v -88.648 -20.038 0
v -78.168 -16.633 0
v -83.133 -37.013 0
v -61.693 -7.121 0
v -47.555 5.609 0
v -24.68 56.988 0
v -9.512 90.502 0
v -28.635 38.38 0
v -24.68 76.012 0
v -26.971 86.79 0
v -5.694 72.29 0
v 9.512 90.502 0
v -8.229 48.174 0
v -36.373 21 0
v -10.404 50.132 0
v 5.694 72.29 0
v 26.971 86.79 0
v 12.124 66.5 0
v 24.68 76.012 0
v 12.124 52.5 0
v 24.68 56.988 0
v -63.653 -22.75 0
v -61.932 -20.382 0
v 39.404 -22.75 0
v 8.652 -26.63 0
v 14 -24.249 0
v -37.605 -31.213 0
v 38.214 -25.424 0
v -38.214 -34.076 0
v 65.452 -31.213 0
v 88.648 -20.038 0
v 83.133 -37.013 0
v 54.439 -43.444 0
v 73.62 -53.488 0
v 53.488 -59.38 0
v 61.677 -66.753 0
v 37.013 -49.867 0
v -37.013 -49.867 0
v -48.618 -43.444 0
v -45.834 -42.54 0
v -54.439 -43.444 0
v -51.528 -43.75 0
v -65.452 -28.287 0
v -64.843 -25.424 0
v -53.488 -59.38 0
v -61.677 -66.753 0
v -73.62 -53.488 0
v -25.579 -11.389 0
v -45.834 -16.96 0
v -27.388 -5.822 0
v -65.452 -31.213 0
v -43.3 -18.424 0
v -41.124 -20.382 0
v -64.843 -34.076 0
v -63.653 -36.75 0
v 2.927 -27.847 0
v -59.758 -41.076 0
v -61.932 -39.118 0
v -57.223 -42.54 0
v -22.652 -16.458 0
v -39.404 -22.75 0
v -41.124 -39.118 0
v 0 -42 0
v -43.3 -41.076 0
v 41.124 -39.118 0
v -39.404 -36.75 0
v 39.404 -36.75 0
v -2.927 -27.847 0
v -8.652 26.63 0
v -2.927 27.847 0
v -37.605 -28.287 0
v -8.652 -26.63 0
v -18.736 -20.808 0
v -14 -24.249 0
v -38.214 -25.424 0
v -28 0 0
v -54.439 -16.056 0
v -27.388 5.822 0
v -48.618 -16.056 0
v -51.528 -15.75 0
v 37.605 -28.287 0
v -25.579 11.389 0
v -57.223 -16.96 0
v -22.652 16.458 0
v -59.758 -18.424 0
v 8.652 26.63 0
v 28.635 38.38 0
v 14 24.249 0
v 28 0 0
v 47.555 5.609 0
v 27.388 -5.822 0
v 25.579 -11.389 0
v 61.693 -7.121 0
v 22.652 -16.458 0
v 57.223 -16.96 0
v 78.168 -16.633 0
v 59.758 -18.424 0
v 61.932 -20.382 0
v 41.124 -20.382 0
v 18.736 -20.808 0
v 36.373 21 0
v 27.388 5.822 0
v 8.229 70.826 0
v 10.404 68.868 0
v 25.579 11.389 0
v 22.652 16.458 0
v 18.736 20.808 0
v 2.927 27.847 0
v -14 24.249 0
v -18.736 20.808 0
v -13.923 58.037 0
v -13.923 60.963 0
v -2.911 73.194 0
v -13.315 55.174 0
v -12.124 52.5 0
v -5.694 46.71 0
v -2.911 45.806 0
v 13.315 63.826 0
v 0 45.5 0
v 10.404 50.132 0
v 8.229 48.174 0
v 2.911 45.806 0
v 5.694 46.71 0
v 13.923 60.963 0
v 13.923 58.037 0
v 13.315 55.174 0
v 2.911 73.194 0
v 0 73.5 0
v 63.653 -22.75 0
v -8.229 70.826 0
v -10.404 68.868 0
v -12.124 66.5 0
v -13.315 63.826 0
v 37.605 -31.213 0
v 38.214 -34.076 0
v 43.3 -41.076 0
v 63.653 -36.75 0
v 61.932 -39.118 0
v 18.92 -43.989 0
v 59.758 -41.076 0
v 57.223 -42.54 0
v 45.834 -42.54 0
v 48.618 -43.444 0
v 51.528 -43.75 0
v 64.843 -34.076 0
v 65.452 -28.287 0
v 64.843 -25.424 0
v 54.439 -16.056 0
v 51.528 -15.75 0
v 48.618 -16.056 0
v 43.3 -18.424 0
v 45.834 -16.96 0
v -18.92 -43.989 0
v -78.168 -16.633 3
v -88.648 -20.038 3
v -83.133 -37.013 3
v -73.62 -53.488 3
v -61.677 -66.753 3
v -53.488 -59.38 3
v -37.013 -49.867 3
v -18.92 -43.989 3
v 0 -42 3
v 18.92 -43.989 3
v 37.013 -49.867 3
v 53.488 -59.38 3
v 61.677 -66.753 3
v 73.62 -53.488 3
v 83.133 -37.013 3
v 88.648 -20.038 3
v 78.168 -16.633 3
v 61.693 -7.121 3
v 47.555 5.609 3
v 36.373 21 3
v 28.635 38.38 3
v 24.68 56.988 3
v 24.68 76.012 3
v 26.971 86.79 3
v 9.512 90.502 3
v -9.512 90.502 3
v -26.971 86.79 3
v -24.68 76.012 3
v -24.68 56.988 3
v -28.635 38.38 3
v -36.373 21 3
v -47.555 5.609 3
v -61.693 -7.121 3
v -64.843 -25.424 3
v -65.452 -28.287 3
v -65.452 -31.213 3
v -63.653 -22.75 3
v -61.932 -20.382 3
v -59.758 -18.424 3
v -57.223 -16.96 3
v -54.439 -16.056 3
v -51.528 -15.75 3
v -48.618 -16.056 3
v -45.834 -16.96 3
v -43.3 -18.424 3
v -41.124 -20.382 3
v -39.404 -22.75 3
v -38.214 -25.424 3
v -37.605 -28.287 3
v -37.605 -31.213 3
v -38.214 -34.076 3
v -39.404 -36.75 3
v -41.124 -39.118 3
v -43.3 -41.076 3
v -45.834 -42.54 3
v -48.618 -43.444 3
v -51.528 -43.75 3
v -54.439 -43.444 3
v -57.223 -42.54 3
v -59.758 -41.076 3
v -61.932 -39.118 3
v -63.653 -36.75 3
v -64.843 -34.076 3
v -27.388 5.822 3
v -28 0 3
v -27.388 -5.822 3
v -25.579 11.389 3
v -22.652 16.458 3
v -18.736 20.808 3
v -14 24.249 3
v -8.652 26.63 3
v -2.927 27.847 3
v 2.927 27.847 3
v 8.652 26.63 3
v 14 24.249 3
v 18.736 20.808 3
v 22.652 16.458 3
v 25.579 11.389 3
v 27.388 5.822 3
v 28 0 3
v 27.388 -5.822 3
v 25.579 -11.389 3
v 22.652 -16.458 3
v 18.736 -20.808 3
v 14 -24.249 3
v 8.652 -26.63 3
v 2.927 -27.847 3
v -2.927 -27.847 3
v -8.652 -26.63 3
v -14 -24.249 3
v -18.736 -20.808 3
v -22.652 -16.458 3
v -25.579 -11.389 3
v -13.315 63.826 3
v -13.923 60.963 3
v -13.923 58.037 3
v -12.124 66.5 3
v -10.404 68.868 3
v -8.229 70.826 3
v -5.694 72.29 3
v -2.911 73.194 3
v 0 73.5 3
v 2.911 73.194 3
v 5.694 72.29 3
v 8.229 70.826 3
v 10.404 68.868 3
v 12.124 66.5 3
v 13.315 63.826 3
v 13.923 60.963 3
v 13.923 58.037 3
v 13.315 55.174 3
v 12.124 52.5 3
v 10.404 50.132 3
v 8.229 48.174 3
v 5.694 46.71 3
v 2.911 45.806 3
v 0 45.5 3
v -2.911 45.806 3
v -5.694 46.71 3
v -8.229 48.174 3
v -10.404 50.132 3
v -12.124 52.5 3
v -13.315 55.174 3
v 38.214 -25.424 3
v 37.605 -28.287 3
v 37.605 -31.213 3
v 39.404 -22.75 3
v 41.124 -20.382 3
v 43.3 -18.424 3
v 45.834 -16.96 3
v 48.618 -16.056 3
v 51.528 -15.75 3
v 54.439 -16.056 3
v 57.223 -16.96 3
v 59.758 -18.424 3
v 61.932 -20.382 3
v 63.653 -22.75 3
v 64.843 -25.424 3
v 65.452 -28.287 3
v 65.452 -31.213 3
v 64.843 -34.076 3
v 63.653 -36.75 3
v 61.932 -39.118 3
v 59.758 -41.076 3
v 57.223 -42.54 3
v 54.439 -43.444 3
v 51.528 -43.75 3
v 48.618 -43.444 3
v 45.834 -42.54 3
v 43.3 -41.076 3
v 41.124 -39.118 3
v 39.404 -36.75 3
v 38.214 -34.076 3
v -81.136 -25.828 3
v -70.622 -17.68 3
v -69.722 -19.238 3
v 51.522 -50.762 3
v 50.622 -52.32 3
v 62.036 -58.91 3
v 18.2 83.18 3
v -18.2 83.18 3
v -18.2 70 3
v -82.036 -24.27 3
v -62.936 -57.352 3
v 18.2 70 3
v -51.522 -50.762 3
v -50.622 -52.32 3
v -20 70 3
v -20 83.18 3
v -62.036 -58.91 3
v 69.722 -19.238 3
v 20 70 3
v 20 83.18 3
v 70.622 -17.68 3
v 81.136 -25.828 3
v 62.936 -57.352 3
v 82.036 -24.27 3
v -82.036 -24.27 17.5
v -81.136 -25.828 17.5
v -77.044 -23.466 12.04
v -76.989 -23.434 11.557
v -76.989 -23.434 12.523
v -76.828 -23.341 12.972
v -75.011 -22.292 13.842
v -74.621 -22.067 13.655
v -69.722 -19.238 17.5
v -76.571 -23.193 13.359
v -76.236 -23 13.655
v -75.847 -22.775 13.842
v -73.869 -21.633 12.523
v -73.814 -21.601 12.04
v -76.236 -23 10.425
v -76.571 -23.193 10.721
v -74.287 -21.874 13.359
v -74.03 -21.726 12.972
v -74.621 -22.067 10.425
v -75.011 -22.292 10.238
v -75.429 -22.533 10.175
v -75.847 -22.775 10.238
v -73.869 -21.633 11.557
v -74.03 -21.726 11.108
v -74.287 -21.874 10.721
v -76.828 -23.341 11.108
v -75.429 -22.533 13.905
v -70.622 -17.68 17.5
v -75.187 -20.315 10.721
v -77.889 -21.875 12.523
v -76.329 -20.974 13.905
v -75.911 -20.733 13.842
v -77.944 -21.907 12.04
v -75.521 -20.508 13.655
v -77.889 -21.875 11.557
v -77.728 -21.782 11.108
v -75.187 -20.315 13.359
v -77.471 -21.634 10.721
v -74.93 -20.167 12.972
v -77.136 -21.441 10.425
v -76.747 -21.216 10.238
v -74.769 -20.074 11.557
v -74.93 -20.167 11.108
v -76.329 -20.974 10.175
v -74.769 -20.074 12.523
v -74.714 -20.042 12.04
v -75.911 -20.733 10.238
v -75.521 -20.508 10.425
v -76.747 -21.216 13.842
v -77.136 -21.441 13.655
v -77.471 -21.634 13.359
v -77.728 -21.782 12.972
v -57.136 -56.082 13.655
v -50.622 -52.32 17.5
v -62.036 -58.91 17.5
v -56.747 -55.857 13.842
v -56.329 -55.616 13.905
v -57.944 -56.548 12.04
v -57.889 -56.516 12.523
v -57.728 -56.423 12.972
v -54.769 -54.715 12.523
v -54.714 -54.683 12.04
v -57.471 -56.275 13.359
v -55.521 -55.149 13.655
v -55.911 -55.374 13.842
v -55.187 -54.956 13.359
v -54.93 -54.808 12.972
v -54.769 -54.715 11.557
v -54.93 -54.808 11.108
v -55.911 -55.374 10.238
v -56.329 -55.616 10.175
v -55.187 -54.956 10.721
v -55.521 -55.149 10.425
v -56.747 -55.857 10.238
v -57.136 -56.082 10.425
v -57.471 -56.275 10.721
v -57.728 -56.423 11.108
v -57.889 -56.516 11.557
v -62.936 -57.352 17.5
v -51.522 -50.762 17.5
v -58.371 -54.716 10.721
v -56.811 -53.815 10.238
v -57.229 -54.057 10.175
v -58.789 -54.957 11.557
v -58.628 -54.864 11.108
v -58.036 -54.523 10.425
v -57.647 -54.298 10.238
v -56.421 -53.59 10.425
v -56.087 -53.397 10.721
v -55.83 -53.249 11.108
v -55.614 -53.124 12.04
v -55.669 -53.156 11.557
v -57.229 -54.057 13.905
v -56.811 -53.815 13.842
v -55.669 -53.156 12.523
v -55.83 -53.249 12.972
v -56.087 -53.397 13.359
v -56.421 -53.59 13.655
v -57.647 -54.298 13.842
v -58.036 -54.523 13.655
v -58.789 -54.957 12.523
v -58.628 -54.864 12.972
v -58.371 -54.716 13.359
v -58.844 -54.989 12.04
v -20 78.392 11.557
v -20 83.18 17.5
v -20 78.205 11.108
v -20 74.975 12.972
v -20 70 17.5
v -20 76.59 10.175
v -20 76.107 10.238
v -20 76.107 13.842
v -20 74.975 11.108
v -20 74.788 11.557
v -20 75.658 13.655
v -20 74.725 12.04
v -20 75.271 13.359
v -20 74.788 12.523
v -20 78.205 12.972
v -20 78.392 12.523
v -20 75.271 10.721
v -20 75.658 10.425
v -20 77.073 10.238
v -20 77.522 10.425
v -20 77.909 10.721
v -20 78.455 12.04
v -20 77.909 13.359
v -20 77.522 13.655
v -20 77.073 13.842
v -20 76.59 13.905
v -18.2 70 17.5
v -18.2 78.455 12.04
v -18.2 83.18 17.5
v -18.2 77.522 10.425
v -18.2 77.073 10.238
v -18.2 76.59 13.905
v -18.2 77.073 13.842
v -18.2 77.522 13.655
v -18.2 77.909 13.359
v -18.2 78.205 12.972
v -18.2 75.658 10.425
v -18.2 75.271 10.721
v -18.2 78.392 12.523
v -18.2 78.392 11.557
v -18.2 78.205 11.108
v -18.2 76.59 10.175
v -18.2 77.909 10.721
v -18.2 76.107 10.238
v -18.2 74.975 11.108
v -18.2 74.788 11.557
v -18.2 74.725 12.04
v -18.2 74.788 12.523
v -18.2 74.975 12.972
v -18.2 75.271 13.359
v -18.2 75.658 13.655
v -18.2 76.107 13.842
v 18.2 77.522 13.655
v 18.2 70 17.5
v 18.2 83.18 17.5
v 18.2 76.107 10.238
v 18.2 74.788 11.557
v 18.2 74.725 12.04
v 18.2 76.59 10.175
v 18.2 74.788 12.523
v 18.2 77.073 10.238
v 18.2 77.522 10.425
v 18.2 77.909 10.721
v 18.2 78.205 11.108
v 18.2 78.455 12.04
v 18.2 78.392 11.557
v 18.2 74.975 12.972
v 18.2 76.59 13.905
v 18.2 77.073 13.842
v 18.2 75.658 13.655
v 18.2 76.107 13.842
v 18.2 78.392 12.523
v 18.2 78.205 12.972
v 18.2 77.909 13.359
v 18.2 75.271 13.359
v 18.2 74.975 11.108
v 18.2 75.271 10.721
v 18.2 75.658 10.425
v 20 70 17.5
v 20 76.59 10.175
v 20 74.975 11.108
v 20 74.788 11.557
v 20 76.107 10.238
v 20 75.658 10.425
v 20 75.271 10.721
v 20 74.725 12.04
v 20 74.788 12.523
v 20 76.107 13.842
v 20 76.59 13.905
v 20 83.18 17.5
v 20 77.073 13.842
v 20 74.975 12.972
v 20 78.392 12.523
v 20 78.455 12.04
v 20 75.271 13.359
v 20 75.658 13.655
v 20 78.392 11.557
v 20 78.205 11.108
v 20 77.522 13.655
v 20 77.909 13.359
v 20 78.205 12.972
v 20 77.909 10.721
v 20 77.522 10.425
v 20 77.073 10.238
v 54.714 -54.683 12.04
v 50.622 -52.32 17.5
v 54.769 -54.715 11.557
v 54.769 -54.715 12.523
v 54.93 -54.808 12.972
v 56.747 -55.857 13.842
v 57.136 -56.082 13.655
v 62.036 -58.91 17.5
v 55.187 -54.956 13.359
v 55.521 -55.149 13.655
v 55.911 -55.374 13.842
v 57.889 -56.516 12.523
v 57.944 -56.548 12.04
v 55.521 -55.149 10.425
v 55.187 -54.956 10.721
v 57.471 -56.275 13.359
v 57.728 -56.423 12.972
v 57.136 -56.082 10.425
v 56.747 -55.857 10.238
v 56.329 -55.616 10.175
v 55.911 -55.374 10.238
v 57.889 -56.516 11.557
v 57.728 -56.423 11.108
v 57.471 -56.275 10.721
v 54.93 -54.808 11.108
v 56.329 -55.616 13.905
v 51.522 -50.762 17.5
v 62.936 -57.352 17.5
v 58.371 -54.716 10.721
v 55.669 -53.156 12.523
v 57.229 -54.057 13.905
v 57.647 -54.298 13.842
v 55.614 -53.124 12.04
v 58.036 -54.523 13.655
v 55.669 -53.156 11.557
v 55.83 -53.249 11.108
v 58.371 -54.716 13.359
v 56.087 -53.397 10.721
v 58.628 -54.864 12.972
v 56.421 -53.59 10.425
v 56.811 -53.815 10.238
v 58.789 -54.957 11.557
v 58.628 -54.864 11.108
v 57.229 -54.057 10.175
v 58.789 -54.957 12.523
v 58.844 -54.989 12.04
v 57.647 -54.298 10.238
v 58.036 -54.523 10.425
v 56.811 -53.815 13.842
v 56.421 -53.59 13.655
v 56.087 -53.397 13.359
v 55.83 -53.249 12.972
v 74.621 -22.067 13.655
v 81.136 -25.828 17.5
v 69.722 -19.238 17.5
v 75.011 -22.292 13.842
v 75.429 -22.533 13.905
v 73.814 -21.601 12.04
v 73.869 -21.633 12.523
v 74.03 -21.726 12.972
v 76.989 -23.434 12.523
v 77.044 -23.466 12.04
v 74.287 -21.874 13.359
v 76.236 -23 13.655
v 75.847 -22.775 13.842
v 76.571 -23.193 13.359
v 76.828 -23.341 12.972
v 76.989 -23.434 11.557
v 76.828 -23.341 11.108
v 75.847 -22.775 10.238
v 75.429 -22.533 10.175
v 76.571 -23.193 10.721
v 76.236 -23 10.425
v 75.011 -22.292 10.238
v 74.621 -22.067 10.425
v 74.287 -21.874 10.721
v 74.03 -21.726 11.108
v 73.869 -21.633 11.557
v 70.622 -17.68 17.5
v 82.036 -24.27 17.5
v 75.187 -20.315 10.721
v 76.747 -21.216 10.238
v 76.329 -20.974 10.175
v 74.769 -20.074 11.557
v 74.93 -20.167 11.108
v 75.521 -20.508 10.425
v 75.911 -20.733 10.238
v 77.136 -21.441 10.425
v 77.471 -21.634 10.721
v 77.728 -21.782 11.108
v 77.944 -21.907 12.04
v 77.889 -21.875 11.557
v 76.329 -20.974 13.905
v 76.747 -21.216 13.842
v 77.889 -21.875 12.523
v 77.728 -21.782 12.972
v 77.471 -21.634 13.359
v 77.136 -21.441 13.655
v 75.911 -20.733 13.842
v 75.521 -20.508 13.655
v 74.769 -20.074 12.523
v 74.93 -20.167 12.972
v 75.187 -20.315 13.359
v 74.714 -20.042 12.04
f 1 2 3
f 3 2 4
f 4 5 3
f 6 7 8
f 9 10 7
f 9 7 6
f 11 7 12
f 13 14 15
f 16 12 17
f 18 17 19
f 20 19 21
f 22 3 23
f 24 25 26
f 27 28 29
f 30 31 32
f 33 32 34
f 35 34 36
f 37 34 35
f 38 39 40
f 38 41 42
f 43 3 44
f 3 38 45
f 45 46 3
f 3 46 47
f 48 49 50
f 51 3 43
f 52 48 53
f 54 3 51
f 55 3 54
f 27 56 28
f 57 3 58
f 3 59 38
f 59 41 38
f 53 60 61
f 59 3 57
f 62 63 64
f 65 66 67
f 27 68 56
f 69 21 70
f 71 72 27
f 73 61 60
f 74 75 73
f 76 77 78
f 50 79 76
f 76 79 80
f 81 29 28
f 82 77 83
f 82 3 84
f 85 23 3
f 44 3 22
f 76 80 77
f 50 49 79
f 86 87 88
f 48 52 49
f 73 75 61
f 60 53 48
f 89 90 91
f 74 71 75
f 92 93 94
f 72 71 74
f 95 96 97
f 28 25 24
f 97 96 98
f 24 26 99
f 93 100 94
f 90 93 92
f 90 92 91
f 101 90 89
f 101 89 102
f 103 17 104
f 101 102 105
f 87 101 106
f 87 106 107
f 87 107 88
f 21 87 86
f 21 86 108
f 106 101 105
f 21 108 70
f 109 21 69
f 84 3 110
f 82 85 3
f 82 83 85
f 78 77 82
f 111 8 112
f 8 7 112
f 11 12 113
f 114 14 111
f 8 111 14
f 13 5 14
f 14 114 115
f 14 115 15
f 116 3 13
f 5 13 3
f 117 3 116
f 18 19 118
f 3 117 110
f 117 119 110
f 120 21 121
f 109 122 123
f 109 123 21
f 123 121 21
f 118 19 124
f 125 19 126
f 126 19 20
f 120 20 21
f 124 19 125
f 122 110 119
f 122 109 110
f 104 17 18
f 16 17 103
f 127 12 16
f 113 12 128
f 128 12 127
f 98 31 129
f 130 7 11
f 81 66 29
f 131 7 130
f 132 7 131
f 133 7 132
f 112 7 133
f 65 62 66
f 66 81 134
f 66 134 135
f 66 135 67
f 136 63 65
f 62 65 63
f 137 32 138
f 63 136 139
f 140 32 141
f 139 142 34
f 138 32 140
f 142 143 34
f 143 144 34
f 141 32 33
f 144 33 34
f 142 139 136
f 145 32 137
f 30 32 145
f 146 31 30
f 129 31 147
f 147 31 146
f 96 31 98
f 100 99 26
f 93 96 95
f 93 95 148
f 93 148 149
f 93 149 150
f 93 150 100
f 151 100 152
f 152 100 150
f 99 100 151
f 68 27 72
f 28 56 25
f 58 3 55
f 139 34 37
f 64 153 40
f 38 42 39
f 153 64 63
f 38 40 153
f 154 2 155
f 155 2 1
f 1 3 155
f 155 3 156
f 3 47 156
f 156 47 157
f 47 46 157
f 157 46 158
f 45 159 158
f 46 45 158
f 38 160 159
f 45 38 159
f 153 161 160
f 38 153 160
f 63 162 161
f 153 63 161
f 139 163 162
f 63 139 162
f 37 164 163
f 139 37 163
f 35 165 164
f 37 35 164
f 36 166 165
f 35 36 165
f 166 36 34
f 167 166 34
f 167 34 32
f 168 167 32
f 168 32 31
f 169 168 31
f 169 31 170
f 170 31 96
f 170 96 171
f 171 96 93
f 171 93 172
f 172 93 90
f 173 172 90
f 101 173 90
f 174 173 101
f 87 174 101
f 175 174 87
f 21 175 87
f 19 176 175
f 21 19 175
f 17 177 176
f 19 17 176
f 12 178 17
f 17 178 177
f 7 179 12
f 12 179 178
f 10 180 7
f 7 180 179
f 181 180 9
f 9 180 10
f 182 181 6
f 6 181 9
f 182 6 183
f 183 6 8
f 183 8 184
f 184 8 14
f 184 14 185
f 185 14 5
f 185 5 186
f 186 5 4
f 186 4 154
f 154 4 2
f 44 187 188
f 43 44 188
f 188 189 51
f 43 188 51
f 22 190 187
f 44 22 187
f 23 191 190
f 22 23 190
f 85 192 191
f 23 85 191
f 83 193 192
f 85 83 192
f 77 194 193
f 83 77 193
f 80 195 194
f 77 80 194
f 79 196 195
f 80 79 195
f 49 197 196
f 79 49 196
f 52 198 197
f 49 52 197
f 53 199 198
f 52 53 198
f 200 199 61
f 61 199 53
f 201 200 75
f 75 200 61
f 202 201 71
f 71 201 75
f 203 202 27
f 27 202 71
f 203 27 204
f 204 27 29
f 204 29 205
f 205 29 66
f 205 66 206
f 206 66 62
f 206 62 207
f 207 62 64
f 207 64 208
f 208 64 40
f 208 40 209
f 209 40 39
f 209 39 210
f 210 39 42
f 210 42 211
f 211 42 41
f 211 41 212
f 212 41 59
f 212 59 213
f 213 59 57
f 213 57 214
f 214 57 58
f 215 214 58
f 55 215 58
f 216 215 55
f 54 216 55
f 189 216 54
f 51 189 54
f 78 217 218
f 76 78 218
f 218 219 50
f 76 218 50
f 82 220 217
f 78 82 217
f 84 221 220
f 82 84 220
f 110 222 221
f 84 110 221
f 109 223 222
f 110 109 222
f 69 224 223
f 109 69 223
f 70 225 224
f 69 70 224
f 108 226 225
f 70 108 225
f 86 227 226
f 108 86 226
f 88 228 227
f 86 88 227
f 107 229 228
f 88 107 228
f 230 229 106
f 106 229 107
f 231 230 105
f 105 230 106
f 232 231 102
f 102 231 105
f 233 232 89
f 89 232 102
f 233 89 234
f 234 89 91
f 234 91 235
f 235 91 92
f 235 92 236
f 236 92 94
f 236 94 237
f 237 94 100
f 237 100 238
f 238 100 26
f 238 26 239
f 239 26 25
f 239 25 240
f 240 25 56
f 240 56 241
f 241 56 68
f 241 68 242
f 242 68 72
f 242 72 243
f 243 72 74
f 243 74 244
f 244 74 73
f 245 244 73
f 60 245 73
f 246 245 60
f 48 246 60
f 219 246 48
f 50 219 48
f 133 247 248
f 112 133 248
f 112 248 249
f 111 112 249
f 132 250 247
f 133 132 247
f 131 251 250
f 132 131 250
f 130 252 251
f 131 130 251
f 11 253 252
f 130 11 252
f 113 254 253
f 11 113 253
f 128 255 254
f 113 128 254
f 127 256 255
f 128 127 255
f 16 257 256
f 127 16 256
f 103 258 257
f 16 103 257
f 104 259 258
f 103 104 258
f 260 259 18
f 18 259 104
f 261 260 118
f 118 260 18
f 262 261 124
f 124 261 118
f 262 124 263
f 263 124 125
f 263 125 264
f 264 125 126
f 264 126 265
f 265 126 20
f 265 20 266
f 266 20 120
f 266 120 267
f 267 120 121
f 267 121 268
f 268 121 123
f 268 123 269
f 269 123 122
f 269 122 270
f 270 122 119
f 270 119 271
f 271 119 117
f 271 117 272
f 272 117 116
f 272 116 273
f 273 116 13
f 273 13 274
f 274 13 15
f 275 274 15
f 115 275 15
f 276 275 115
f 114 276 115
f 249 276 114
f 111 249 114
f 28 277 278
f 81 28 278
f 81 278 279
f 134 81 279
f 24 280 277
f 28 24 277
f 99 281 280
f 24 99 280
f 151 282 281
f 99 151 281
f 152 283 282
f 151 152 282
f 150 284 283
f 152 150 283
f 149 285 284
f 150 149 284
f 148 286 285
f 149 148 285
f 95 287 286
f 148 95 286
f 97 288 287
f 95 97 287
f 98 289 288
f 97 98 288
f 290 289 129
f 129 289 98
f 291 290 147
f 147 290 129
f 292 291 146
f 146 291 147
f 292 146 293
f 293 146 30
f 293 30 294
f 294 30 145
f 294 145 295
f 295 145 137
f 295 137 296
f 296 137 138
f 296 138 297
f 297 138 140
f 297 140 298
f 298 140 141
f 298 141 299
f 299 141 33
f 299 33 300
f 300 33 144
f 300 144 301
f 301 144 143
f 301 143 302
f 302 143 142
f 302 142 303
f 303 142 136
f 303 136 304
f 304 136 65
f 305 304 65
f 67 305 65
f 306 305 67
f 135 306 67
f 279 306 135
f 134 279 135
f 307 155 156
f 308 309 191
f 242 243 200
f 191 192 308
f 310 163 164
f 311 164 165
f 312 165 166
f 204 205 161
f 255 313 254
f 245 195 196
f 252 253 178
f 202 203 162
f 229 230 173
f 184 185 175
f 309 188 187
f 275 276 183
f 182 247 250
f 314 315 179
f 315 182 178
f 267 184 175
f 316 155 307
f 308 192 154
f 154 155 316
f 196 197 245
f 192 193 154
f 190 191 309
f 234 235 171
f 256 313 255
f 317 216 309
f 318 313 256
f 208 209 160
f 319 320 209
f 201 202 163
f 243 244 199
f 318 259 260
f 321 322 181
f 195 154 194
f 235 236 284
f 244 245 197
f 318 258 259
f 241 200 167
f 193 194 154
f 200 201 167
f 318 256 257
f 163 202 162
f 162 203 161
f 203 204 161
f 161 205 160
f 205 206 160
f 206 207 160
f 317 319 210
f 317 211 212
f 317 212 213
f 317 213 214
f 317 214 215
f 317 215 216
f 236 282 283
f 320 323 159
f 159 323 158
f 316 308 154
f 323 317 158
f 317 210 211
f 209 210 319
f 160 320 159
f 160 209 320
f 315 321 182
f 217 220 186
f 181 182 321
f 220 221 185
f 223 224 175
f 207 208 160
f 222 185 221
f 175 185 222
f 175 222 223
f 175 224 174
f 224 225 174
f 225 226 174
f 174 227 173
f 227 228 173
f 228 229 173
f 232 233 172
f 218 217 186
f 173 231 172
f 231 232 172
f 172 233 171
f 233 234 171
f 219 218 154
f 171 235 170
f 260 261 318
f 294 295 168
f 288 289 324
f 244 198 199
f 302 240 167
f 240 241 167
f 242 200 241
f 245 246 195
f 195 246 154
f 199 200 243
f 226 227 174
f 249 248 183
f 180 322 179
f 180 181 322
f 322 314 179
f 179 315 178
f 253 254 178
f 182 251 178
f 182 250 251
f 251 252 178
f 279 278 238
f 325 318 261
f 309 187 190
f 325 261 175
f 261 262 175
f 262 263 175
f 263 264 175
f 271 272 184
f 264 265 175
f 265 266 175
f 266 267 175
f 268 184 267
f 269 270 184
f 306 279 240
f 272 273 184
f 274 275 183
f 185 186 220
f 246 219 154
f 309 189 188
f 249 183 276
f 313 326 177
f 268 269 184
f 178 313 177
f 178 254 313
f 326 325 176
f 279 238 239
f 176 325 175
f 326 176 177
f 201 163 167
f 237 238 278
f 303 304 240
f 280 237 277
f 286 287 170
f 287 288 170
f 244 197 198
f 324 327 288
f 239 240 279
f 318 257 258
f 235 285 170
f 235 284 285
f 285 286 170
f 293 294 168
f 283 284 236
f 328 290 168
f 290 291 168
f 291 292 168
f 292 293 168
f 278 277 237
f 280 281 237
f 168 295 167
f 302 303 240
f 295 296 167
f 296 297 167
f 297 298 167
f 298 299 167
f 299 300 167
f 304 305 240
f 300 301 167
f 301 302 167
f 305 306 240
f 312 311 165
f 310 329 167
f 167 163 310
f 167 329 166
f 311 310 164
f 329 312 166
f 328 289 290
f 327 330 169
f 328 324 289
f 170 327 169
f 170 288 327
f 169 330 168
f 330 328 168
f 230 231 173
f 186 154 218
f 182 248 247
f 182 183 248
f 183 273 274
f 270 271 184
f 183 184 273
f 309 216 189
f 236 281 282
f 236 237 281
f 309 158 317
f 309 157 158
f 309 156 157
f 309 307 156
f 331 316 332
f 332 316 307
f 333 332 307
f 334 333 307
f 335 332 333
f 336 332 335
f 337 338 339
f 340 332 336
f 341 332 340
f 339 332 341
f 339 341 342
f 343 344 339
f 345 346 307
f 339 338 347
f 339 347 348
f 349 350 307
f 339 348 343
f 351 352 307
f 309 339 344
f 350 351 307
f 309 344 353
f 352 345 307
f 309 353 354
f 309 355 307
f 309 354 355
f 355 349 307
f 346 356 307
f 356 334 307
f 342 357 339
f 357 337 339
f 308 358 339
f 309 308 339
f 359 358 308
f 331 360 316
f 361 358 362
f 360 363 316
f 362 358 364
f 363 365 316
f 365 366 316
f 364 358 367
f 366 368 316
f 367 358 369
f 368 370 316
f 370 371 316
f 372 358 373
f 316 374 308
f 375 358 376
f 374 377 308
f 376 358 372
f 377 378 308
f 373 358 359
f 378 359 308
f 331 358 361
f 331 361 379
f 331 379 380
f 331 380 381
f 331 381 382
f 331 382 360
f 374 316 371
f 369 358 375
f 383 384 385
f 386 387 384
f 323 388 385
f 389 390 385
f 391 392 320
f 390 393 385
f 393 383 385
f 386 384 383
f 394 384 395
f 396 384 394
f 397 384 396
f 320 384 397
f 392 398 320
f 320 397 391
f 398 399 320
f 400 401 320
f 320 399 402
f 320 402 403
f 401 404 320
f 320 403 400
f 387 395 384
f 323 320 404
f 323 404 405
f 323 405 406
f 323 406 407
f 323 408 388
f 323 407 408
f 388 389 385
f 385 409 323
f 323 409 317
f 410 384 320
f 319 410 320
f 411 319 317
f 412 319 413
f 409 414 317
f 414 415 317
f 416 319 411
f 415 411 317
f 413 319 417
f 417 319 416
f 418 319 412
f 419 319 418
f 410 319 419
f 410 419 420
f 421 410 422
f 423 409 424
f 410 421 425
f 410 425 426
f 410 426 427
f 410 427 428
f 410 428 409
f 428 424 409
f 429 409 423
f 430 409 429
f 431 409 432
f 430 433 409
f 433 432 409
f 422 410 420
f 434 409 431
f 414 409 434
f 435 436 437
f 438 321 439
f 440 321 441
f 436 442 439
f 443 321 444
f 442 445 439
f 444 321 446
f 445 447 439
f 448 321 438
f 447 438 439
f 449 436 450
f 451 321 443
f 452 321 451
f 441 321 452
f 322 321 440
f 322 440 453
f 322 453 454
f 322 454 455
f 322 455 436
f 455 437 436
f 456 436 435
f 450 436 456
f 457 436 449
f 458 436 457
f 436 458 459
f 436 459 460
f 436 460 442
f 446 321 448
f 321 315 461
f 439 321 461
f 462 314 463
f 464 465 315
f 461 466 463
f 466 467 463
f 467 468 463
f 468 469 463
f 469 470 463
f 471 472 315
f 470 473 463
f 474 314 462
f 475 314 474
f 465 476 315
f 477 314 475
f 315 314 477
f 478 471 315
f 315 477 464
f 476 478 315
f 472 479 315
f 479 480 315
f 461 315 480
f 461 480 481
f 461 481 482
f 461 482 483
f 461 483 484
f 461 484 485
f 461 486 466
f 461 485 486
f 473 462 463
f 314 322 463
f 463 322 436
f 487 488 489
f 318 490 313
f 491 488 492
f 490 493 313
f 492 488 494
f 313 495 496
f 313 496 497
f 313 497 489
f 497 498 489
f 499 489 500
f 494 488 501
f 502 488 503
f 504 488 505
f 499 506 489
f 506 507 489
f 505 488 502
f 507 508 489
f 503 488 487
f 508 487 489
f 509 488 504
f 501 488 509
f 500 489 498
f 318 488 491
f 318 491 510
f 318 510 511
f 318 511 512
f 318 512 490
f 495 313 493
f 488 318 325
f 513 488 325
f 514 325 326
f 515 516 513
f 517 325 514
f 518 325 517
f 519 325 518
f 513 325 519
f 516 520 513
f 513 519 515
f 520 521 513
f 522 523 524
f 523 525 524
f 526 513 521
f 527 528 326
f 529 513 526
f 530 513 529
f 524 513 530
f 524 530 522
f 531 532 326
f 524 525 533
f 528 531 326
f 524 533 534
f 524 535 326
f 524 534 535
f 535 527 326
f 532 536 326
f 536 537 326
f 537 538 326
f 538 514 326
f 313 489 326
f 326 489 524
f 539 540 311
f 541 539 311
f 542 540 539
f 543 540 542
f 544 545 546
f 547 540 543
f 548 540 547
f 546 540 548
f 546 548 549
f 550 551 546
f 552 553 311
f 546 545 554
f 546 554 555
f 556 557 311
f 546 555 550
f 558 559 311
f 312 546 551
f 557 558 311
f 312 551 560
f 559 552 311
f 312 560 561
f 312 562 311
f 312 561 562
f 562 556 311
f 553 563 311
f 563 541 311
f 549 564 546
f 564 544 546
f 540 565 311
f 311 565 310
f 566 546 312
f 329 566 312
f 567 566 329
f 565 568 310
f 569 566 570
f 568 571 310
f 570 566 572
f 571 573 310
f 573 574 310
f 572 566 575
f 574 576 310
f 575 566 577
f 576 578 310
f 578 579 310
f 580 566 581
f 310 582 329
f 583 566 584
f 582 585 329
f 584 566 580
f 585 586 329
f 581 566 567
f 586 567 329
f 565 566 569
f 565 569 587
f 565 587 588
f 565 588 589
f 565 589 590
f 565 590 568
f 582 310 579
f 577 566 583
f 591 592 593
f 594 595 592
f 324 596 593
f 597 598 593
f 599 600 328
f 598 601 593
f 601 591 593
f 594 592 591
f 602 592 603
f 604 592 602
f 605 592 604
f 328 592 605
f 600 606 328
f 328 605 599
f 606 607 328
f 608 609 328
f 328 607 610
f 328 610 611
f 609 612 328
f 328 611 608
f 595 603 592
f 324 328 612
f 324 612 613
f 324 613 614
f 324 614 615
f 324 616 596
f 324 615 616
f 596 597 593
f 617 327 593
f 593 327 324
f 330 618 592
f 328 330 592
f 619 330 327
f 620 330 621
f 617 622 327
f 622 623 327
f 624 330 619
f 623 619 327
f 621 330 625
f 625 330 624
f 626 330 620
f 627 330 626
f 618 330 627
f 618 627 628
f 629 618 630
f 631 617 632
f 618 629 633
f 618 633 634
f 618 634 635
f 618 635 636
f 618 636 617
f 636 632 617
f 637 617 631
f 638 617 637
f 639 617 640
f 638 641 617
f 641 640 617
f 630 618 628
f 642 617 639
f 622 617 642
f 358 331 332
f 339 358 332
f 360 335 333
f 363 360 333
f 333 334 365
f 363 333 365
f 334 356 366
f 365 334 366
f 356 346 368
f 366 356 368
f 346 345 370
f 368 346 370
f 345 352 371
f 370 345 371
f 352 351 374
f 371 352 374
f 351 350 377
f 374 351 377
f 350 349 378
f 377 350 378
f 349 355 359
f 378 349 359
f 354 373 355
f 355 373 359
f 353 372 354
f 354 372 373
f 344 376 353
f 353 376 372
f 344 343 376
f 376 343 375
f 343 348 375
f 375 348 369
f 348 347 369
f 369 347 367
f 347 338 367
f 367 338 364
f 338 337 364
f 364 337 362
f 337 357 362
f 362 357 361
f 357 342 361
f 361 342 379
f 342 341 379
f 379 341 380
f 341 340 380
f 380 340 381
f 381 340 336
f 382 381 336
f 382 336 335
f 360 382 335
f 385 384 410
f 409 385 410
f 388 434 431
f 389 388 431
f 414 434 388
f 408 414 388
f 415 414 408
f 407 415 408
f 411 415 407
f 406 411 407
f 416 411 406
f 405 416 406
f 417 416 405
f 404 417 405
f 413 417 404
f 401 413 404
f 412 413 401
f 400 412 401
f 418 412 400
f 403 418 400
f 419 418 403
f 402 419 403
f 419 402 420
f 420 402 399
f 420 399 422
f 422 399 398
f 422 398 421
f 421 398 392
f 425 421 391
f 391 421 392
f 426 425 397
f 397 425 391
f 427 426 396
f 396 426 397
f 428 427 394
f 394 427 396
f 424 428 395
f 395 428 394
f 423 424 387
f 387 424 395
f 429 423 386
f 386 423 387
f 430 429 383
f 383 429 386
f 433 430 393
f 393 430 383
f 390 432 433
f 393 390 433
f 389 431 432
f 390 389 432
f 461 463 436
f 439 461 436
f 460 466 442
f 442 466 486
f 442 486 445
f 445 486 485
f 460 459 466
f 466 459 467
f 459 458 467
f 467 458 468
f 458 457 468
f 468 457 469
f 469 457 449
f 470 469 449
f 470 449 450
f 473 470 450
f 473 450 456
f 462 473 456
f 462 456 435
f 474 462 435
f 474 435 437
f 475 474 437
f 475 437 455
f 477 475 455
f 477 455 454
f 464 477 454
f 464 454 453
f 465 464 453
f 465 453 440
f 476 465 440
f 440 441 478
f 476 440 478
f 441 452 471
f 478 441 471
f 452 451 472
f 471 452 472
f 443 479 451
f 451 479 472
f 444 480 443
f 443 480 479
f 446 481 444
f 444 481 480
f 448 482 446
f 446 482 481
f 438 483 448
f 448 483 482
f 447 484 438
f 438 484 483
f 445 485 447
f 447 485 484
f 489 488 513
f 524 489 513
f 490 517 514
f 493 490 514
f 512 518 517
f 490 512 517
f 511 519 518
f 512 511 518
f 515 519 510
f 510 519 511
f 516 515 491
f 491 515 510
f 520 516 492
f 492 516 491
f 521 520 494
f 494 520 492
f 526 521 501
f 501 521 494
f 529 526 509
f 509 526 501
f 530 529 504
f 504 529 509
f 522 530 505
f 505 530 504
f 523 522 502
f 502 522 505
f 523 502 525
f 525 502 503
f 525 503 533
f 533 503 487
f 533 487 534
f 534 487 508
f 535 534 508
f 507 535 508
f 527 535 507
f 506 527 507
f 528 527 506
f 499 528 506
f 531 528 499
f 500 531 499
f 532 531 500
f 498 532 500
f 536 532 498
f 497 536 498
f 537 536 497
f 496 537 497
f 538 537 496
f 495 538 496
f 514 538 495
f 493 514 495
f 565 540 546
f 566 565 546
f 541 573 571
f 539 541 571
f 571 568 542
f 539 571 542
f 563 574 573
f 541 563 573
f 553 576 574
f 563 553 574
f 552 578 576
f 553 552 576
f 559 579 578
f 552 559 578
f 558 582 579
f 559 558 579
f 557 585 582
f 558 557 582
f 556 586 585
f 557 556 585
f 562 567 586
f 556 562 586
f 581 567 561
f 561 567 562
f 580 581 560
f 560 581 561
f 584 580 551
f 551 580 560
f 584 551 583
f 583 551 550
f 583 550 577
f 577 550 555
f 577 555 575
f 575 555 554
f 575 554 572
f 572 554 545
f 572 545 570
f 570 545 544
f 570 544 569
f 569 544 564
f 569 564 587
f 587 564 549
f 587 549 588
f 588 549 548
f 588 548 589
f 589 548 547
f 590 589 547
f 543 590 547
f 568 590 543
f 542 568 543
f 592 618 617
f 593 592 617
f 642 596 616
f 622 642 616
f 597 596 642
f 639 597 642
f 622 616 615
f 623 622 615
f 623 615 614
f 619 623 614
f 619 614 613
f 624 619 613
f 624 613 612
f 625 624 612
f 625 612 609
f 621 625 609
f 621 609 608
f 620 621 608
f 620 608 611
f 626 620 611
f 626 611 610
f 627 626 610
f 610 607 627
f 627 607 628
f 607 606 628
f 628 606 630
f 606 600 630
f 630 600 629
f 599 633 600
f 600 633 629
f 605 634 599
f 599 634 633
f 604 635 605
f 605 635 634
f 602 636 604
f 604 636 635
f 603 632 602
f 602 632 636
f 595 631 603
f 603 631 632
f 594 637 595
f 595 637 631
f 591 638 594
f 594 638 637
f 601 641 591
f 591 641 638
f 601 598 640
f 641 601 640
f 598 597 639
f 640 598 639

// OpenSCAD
thickness = 3;
length = 17.5;
width = 13.18;
height = 1.8;

radius = 70;


wire_diameter=2.73;
wire_radius = 0.5*wire_diameter;


wall_width = 2;
give = 0.5;
offset = 0.1;

module attachment_point() {
	translate([10, radius, 0]){
		rotate(-90, [0,1,0]){
			difference(){
				cube([length, width, height]);
				translate([length-2*wire_diameter,0.5*width, -offset]){
					cylinder(r=wire_radius + give, h=5, $fs=0.5);
				}
			}
		}
	}
}

module attachment_pair(){
	translate([10,0,0]){
		attachment_point();
	}
	mirror([1,0,0]){
		translate([10,0,0]){
			attachment_point();
		}
	}
}

module negative_circle() {
	rotate(30, [0,0,1]){
		translate([1.9*radius, 0, -offset]){
			cylinder(r=1.3*radius, h=thickness+2*offset, $fs=0.5);
		}
	}
}

module small_negative_circle() {
	rotate(90, [0,0,1]){
		translate([0.85*radius, 0,-offset]){
			cylinder(r=0.2*radius, h=thickness+2*offset);
		}
	}
}

difference(){
	cylinder(r=1.3*radius, h=thickness, $fs=0.5);
	negative_circle();
	small_negative_circle();
	rotate(120, [0,0,1]){
		negative_circle();
		small_negative_circle();
	}
	rotate(240, [0,0,1]){
		negative_circle();
		small_negative_circle();
	}
	translate([0,0,-offset]){
		cylinder(r=0.4*radius, h=thickness+2*offset);
	}

}
attachment_pair();
rotate(120, [0,0,1]){
	attachment_pair();
}
rotate(240, [0,0,1]){
	attachment_pair();
}
